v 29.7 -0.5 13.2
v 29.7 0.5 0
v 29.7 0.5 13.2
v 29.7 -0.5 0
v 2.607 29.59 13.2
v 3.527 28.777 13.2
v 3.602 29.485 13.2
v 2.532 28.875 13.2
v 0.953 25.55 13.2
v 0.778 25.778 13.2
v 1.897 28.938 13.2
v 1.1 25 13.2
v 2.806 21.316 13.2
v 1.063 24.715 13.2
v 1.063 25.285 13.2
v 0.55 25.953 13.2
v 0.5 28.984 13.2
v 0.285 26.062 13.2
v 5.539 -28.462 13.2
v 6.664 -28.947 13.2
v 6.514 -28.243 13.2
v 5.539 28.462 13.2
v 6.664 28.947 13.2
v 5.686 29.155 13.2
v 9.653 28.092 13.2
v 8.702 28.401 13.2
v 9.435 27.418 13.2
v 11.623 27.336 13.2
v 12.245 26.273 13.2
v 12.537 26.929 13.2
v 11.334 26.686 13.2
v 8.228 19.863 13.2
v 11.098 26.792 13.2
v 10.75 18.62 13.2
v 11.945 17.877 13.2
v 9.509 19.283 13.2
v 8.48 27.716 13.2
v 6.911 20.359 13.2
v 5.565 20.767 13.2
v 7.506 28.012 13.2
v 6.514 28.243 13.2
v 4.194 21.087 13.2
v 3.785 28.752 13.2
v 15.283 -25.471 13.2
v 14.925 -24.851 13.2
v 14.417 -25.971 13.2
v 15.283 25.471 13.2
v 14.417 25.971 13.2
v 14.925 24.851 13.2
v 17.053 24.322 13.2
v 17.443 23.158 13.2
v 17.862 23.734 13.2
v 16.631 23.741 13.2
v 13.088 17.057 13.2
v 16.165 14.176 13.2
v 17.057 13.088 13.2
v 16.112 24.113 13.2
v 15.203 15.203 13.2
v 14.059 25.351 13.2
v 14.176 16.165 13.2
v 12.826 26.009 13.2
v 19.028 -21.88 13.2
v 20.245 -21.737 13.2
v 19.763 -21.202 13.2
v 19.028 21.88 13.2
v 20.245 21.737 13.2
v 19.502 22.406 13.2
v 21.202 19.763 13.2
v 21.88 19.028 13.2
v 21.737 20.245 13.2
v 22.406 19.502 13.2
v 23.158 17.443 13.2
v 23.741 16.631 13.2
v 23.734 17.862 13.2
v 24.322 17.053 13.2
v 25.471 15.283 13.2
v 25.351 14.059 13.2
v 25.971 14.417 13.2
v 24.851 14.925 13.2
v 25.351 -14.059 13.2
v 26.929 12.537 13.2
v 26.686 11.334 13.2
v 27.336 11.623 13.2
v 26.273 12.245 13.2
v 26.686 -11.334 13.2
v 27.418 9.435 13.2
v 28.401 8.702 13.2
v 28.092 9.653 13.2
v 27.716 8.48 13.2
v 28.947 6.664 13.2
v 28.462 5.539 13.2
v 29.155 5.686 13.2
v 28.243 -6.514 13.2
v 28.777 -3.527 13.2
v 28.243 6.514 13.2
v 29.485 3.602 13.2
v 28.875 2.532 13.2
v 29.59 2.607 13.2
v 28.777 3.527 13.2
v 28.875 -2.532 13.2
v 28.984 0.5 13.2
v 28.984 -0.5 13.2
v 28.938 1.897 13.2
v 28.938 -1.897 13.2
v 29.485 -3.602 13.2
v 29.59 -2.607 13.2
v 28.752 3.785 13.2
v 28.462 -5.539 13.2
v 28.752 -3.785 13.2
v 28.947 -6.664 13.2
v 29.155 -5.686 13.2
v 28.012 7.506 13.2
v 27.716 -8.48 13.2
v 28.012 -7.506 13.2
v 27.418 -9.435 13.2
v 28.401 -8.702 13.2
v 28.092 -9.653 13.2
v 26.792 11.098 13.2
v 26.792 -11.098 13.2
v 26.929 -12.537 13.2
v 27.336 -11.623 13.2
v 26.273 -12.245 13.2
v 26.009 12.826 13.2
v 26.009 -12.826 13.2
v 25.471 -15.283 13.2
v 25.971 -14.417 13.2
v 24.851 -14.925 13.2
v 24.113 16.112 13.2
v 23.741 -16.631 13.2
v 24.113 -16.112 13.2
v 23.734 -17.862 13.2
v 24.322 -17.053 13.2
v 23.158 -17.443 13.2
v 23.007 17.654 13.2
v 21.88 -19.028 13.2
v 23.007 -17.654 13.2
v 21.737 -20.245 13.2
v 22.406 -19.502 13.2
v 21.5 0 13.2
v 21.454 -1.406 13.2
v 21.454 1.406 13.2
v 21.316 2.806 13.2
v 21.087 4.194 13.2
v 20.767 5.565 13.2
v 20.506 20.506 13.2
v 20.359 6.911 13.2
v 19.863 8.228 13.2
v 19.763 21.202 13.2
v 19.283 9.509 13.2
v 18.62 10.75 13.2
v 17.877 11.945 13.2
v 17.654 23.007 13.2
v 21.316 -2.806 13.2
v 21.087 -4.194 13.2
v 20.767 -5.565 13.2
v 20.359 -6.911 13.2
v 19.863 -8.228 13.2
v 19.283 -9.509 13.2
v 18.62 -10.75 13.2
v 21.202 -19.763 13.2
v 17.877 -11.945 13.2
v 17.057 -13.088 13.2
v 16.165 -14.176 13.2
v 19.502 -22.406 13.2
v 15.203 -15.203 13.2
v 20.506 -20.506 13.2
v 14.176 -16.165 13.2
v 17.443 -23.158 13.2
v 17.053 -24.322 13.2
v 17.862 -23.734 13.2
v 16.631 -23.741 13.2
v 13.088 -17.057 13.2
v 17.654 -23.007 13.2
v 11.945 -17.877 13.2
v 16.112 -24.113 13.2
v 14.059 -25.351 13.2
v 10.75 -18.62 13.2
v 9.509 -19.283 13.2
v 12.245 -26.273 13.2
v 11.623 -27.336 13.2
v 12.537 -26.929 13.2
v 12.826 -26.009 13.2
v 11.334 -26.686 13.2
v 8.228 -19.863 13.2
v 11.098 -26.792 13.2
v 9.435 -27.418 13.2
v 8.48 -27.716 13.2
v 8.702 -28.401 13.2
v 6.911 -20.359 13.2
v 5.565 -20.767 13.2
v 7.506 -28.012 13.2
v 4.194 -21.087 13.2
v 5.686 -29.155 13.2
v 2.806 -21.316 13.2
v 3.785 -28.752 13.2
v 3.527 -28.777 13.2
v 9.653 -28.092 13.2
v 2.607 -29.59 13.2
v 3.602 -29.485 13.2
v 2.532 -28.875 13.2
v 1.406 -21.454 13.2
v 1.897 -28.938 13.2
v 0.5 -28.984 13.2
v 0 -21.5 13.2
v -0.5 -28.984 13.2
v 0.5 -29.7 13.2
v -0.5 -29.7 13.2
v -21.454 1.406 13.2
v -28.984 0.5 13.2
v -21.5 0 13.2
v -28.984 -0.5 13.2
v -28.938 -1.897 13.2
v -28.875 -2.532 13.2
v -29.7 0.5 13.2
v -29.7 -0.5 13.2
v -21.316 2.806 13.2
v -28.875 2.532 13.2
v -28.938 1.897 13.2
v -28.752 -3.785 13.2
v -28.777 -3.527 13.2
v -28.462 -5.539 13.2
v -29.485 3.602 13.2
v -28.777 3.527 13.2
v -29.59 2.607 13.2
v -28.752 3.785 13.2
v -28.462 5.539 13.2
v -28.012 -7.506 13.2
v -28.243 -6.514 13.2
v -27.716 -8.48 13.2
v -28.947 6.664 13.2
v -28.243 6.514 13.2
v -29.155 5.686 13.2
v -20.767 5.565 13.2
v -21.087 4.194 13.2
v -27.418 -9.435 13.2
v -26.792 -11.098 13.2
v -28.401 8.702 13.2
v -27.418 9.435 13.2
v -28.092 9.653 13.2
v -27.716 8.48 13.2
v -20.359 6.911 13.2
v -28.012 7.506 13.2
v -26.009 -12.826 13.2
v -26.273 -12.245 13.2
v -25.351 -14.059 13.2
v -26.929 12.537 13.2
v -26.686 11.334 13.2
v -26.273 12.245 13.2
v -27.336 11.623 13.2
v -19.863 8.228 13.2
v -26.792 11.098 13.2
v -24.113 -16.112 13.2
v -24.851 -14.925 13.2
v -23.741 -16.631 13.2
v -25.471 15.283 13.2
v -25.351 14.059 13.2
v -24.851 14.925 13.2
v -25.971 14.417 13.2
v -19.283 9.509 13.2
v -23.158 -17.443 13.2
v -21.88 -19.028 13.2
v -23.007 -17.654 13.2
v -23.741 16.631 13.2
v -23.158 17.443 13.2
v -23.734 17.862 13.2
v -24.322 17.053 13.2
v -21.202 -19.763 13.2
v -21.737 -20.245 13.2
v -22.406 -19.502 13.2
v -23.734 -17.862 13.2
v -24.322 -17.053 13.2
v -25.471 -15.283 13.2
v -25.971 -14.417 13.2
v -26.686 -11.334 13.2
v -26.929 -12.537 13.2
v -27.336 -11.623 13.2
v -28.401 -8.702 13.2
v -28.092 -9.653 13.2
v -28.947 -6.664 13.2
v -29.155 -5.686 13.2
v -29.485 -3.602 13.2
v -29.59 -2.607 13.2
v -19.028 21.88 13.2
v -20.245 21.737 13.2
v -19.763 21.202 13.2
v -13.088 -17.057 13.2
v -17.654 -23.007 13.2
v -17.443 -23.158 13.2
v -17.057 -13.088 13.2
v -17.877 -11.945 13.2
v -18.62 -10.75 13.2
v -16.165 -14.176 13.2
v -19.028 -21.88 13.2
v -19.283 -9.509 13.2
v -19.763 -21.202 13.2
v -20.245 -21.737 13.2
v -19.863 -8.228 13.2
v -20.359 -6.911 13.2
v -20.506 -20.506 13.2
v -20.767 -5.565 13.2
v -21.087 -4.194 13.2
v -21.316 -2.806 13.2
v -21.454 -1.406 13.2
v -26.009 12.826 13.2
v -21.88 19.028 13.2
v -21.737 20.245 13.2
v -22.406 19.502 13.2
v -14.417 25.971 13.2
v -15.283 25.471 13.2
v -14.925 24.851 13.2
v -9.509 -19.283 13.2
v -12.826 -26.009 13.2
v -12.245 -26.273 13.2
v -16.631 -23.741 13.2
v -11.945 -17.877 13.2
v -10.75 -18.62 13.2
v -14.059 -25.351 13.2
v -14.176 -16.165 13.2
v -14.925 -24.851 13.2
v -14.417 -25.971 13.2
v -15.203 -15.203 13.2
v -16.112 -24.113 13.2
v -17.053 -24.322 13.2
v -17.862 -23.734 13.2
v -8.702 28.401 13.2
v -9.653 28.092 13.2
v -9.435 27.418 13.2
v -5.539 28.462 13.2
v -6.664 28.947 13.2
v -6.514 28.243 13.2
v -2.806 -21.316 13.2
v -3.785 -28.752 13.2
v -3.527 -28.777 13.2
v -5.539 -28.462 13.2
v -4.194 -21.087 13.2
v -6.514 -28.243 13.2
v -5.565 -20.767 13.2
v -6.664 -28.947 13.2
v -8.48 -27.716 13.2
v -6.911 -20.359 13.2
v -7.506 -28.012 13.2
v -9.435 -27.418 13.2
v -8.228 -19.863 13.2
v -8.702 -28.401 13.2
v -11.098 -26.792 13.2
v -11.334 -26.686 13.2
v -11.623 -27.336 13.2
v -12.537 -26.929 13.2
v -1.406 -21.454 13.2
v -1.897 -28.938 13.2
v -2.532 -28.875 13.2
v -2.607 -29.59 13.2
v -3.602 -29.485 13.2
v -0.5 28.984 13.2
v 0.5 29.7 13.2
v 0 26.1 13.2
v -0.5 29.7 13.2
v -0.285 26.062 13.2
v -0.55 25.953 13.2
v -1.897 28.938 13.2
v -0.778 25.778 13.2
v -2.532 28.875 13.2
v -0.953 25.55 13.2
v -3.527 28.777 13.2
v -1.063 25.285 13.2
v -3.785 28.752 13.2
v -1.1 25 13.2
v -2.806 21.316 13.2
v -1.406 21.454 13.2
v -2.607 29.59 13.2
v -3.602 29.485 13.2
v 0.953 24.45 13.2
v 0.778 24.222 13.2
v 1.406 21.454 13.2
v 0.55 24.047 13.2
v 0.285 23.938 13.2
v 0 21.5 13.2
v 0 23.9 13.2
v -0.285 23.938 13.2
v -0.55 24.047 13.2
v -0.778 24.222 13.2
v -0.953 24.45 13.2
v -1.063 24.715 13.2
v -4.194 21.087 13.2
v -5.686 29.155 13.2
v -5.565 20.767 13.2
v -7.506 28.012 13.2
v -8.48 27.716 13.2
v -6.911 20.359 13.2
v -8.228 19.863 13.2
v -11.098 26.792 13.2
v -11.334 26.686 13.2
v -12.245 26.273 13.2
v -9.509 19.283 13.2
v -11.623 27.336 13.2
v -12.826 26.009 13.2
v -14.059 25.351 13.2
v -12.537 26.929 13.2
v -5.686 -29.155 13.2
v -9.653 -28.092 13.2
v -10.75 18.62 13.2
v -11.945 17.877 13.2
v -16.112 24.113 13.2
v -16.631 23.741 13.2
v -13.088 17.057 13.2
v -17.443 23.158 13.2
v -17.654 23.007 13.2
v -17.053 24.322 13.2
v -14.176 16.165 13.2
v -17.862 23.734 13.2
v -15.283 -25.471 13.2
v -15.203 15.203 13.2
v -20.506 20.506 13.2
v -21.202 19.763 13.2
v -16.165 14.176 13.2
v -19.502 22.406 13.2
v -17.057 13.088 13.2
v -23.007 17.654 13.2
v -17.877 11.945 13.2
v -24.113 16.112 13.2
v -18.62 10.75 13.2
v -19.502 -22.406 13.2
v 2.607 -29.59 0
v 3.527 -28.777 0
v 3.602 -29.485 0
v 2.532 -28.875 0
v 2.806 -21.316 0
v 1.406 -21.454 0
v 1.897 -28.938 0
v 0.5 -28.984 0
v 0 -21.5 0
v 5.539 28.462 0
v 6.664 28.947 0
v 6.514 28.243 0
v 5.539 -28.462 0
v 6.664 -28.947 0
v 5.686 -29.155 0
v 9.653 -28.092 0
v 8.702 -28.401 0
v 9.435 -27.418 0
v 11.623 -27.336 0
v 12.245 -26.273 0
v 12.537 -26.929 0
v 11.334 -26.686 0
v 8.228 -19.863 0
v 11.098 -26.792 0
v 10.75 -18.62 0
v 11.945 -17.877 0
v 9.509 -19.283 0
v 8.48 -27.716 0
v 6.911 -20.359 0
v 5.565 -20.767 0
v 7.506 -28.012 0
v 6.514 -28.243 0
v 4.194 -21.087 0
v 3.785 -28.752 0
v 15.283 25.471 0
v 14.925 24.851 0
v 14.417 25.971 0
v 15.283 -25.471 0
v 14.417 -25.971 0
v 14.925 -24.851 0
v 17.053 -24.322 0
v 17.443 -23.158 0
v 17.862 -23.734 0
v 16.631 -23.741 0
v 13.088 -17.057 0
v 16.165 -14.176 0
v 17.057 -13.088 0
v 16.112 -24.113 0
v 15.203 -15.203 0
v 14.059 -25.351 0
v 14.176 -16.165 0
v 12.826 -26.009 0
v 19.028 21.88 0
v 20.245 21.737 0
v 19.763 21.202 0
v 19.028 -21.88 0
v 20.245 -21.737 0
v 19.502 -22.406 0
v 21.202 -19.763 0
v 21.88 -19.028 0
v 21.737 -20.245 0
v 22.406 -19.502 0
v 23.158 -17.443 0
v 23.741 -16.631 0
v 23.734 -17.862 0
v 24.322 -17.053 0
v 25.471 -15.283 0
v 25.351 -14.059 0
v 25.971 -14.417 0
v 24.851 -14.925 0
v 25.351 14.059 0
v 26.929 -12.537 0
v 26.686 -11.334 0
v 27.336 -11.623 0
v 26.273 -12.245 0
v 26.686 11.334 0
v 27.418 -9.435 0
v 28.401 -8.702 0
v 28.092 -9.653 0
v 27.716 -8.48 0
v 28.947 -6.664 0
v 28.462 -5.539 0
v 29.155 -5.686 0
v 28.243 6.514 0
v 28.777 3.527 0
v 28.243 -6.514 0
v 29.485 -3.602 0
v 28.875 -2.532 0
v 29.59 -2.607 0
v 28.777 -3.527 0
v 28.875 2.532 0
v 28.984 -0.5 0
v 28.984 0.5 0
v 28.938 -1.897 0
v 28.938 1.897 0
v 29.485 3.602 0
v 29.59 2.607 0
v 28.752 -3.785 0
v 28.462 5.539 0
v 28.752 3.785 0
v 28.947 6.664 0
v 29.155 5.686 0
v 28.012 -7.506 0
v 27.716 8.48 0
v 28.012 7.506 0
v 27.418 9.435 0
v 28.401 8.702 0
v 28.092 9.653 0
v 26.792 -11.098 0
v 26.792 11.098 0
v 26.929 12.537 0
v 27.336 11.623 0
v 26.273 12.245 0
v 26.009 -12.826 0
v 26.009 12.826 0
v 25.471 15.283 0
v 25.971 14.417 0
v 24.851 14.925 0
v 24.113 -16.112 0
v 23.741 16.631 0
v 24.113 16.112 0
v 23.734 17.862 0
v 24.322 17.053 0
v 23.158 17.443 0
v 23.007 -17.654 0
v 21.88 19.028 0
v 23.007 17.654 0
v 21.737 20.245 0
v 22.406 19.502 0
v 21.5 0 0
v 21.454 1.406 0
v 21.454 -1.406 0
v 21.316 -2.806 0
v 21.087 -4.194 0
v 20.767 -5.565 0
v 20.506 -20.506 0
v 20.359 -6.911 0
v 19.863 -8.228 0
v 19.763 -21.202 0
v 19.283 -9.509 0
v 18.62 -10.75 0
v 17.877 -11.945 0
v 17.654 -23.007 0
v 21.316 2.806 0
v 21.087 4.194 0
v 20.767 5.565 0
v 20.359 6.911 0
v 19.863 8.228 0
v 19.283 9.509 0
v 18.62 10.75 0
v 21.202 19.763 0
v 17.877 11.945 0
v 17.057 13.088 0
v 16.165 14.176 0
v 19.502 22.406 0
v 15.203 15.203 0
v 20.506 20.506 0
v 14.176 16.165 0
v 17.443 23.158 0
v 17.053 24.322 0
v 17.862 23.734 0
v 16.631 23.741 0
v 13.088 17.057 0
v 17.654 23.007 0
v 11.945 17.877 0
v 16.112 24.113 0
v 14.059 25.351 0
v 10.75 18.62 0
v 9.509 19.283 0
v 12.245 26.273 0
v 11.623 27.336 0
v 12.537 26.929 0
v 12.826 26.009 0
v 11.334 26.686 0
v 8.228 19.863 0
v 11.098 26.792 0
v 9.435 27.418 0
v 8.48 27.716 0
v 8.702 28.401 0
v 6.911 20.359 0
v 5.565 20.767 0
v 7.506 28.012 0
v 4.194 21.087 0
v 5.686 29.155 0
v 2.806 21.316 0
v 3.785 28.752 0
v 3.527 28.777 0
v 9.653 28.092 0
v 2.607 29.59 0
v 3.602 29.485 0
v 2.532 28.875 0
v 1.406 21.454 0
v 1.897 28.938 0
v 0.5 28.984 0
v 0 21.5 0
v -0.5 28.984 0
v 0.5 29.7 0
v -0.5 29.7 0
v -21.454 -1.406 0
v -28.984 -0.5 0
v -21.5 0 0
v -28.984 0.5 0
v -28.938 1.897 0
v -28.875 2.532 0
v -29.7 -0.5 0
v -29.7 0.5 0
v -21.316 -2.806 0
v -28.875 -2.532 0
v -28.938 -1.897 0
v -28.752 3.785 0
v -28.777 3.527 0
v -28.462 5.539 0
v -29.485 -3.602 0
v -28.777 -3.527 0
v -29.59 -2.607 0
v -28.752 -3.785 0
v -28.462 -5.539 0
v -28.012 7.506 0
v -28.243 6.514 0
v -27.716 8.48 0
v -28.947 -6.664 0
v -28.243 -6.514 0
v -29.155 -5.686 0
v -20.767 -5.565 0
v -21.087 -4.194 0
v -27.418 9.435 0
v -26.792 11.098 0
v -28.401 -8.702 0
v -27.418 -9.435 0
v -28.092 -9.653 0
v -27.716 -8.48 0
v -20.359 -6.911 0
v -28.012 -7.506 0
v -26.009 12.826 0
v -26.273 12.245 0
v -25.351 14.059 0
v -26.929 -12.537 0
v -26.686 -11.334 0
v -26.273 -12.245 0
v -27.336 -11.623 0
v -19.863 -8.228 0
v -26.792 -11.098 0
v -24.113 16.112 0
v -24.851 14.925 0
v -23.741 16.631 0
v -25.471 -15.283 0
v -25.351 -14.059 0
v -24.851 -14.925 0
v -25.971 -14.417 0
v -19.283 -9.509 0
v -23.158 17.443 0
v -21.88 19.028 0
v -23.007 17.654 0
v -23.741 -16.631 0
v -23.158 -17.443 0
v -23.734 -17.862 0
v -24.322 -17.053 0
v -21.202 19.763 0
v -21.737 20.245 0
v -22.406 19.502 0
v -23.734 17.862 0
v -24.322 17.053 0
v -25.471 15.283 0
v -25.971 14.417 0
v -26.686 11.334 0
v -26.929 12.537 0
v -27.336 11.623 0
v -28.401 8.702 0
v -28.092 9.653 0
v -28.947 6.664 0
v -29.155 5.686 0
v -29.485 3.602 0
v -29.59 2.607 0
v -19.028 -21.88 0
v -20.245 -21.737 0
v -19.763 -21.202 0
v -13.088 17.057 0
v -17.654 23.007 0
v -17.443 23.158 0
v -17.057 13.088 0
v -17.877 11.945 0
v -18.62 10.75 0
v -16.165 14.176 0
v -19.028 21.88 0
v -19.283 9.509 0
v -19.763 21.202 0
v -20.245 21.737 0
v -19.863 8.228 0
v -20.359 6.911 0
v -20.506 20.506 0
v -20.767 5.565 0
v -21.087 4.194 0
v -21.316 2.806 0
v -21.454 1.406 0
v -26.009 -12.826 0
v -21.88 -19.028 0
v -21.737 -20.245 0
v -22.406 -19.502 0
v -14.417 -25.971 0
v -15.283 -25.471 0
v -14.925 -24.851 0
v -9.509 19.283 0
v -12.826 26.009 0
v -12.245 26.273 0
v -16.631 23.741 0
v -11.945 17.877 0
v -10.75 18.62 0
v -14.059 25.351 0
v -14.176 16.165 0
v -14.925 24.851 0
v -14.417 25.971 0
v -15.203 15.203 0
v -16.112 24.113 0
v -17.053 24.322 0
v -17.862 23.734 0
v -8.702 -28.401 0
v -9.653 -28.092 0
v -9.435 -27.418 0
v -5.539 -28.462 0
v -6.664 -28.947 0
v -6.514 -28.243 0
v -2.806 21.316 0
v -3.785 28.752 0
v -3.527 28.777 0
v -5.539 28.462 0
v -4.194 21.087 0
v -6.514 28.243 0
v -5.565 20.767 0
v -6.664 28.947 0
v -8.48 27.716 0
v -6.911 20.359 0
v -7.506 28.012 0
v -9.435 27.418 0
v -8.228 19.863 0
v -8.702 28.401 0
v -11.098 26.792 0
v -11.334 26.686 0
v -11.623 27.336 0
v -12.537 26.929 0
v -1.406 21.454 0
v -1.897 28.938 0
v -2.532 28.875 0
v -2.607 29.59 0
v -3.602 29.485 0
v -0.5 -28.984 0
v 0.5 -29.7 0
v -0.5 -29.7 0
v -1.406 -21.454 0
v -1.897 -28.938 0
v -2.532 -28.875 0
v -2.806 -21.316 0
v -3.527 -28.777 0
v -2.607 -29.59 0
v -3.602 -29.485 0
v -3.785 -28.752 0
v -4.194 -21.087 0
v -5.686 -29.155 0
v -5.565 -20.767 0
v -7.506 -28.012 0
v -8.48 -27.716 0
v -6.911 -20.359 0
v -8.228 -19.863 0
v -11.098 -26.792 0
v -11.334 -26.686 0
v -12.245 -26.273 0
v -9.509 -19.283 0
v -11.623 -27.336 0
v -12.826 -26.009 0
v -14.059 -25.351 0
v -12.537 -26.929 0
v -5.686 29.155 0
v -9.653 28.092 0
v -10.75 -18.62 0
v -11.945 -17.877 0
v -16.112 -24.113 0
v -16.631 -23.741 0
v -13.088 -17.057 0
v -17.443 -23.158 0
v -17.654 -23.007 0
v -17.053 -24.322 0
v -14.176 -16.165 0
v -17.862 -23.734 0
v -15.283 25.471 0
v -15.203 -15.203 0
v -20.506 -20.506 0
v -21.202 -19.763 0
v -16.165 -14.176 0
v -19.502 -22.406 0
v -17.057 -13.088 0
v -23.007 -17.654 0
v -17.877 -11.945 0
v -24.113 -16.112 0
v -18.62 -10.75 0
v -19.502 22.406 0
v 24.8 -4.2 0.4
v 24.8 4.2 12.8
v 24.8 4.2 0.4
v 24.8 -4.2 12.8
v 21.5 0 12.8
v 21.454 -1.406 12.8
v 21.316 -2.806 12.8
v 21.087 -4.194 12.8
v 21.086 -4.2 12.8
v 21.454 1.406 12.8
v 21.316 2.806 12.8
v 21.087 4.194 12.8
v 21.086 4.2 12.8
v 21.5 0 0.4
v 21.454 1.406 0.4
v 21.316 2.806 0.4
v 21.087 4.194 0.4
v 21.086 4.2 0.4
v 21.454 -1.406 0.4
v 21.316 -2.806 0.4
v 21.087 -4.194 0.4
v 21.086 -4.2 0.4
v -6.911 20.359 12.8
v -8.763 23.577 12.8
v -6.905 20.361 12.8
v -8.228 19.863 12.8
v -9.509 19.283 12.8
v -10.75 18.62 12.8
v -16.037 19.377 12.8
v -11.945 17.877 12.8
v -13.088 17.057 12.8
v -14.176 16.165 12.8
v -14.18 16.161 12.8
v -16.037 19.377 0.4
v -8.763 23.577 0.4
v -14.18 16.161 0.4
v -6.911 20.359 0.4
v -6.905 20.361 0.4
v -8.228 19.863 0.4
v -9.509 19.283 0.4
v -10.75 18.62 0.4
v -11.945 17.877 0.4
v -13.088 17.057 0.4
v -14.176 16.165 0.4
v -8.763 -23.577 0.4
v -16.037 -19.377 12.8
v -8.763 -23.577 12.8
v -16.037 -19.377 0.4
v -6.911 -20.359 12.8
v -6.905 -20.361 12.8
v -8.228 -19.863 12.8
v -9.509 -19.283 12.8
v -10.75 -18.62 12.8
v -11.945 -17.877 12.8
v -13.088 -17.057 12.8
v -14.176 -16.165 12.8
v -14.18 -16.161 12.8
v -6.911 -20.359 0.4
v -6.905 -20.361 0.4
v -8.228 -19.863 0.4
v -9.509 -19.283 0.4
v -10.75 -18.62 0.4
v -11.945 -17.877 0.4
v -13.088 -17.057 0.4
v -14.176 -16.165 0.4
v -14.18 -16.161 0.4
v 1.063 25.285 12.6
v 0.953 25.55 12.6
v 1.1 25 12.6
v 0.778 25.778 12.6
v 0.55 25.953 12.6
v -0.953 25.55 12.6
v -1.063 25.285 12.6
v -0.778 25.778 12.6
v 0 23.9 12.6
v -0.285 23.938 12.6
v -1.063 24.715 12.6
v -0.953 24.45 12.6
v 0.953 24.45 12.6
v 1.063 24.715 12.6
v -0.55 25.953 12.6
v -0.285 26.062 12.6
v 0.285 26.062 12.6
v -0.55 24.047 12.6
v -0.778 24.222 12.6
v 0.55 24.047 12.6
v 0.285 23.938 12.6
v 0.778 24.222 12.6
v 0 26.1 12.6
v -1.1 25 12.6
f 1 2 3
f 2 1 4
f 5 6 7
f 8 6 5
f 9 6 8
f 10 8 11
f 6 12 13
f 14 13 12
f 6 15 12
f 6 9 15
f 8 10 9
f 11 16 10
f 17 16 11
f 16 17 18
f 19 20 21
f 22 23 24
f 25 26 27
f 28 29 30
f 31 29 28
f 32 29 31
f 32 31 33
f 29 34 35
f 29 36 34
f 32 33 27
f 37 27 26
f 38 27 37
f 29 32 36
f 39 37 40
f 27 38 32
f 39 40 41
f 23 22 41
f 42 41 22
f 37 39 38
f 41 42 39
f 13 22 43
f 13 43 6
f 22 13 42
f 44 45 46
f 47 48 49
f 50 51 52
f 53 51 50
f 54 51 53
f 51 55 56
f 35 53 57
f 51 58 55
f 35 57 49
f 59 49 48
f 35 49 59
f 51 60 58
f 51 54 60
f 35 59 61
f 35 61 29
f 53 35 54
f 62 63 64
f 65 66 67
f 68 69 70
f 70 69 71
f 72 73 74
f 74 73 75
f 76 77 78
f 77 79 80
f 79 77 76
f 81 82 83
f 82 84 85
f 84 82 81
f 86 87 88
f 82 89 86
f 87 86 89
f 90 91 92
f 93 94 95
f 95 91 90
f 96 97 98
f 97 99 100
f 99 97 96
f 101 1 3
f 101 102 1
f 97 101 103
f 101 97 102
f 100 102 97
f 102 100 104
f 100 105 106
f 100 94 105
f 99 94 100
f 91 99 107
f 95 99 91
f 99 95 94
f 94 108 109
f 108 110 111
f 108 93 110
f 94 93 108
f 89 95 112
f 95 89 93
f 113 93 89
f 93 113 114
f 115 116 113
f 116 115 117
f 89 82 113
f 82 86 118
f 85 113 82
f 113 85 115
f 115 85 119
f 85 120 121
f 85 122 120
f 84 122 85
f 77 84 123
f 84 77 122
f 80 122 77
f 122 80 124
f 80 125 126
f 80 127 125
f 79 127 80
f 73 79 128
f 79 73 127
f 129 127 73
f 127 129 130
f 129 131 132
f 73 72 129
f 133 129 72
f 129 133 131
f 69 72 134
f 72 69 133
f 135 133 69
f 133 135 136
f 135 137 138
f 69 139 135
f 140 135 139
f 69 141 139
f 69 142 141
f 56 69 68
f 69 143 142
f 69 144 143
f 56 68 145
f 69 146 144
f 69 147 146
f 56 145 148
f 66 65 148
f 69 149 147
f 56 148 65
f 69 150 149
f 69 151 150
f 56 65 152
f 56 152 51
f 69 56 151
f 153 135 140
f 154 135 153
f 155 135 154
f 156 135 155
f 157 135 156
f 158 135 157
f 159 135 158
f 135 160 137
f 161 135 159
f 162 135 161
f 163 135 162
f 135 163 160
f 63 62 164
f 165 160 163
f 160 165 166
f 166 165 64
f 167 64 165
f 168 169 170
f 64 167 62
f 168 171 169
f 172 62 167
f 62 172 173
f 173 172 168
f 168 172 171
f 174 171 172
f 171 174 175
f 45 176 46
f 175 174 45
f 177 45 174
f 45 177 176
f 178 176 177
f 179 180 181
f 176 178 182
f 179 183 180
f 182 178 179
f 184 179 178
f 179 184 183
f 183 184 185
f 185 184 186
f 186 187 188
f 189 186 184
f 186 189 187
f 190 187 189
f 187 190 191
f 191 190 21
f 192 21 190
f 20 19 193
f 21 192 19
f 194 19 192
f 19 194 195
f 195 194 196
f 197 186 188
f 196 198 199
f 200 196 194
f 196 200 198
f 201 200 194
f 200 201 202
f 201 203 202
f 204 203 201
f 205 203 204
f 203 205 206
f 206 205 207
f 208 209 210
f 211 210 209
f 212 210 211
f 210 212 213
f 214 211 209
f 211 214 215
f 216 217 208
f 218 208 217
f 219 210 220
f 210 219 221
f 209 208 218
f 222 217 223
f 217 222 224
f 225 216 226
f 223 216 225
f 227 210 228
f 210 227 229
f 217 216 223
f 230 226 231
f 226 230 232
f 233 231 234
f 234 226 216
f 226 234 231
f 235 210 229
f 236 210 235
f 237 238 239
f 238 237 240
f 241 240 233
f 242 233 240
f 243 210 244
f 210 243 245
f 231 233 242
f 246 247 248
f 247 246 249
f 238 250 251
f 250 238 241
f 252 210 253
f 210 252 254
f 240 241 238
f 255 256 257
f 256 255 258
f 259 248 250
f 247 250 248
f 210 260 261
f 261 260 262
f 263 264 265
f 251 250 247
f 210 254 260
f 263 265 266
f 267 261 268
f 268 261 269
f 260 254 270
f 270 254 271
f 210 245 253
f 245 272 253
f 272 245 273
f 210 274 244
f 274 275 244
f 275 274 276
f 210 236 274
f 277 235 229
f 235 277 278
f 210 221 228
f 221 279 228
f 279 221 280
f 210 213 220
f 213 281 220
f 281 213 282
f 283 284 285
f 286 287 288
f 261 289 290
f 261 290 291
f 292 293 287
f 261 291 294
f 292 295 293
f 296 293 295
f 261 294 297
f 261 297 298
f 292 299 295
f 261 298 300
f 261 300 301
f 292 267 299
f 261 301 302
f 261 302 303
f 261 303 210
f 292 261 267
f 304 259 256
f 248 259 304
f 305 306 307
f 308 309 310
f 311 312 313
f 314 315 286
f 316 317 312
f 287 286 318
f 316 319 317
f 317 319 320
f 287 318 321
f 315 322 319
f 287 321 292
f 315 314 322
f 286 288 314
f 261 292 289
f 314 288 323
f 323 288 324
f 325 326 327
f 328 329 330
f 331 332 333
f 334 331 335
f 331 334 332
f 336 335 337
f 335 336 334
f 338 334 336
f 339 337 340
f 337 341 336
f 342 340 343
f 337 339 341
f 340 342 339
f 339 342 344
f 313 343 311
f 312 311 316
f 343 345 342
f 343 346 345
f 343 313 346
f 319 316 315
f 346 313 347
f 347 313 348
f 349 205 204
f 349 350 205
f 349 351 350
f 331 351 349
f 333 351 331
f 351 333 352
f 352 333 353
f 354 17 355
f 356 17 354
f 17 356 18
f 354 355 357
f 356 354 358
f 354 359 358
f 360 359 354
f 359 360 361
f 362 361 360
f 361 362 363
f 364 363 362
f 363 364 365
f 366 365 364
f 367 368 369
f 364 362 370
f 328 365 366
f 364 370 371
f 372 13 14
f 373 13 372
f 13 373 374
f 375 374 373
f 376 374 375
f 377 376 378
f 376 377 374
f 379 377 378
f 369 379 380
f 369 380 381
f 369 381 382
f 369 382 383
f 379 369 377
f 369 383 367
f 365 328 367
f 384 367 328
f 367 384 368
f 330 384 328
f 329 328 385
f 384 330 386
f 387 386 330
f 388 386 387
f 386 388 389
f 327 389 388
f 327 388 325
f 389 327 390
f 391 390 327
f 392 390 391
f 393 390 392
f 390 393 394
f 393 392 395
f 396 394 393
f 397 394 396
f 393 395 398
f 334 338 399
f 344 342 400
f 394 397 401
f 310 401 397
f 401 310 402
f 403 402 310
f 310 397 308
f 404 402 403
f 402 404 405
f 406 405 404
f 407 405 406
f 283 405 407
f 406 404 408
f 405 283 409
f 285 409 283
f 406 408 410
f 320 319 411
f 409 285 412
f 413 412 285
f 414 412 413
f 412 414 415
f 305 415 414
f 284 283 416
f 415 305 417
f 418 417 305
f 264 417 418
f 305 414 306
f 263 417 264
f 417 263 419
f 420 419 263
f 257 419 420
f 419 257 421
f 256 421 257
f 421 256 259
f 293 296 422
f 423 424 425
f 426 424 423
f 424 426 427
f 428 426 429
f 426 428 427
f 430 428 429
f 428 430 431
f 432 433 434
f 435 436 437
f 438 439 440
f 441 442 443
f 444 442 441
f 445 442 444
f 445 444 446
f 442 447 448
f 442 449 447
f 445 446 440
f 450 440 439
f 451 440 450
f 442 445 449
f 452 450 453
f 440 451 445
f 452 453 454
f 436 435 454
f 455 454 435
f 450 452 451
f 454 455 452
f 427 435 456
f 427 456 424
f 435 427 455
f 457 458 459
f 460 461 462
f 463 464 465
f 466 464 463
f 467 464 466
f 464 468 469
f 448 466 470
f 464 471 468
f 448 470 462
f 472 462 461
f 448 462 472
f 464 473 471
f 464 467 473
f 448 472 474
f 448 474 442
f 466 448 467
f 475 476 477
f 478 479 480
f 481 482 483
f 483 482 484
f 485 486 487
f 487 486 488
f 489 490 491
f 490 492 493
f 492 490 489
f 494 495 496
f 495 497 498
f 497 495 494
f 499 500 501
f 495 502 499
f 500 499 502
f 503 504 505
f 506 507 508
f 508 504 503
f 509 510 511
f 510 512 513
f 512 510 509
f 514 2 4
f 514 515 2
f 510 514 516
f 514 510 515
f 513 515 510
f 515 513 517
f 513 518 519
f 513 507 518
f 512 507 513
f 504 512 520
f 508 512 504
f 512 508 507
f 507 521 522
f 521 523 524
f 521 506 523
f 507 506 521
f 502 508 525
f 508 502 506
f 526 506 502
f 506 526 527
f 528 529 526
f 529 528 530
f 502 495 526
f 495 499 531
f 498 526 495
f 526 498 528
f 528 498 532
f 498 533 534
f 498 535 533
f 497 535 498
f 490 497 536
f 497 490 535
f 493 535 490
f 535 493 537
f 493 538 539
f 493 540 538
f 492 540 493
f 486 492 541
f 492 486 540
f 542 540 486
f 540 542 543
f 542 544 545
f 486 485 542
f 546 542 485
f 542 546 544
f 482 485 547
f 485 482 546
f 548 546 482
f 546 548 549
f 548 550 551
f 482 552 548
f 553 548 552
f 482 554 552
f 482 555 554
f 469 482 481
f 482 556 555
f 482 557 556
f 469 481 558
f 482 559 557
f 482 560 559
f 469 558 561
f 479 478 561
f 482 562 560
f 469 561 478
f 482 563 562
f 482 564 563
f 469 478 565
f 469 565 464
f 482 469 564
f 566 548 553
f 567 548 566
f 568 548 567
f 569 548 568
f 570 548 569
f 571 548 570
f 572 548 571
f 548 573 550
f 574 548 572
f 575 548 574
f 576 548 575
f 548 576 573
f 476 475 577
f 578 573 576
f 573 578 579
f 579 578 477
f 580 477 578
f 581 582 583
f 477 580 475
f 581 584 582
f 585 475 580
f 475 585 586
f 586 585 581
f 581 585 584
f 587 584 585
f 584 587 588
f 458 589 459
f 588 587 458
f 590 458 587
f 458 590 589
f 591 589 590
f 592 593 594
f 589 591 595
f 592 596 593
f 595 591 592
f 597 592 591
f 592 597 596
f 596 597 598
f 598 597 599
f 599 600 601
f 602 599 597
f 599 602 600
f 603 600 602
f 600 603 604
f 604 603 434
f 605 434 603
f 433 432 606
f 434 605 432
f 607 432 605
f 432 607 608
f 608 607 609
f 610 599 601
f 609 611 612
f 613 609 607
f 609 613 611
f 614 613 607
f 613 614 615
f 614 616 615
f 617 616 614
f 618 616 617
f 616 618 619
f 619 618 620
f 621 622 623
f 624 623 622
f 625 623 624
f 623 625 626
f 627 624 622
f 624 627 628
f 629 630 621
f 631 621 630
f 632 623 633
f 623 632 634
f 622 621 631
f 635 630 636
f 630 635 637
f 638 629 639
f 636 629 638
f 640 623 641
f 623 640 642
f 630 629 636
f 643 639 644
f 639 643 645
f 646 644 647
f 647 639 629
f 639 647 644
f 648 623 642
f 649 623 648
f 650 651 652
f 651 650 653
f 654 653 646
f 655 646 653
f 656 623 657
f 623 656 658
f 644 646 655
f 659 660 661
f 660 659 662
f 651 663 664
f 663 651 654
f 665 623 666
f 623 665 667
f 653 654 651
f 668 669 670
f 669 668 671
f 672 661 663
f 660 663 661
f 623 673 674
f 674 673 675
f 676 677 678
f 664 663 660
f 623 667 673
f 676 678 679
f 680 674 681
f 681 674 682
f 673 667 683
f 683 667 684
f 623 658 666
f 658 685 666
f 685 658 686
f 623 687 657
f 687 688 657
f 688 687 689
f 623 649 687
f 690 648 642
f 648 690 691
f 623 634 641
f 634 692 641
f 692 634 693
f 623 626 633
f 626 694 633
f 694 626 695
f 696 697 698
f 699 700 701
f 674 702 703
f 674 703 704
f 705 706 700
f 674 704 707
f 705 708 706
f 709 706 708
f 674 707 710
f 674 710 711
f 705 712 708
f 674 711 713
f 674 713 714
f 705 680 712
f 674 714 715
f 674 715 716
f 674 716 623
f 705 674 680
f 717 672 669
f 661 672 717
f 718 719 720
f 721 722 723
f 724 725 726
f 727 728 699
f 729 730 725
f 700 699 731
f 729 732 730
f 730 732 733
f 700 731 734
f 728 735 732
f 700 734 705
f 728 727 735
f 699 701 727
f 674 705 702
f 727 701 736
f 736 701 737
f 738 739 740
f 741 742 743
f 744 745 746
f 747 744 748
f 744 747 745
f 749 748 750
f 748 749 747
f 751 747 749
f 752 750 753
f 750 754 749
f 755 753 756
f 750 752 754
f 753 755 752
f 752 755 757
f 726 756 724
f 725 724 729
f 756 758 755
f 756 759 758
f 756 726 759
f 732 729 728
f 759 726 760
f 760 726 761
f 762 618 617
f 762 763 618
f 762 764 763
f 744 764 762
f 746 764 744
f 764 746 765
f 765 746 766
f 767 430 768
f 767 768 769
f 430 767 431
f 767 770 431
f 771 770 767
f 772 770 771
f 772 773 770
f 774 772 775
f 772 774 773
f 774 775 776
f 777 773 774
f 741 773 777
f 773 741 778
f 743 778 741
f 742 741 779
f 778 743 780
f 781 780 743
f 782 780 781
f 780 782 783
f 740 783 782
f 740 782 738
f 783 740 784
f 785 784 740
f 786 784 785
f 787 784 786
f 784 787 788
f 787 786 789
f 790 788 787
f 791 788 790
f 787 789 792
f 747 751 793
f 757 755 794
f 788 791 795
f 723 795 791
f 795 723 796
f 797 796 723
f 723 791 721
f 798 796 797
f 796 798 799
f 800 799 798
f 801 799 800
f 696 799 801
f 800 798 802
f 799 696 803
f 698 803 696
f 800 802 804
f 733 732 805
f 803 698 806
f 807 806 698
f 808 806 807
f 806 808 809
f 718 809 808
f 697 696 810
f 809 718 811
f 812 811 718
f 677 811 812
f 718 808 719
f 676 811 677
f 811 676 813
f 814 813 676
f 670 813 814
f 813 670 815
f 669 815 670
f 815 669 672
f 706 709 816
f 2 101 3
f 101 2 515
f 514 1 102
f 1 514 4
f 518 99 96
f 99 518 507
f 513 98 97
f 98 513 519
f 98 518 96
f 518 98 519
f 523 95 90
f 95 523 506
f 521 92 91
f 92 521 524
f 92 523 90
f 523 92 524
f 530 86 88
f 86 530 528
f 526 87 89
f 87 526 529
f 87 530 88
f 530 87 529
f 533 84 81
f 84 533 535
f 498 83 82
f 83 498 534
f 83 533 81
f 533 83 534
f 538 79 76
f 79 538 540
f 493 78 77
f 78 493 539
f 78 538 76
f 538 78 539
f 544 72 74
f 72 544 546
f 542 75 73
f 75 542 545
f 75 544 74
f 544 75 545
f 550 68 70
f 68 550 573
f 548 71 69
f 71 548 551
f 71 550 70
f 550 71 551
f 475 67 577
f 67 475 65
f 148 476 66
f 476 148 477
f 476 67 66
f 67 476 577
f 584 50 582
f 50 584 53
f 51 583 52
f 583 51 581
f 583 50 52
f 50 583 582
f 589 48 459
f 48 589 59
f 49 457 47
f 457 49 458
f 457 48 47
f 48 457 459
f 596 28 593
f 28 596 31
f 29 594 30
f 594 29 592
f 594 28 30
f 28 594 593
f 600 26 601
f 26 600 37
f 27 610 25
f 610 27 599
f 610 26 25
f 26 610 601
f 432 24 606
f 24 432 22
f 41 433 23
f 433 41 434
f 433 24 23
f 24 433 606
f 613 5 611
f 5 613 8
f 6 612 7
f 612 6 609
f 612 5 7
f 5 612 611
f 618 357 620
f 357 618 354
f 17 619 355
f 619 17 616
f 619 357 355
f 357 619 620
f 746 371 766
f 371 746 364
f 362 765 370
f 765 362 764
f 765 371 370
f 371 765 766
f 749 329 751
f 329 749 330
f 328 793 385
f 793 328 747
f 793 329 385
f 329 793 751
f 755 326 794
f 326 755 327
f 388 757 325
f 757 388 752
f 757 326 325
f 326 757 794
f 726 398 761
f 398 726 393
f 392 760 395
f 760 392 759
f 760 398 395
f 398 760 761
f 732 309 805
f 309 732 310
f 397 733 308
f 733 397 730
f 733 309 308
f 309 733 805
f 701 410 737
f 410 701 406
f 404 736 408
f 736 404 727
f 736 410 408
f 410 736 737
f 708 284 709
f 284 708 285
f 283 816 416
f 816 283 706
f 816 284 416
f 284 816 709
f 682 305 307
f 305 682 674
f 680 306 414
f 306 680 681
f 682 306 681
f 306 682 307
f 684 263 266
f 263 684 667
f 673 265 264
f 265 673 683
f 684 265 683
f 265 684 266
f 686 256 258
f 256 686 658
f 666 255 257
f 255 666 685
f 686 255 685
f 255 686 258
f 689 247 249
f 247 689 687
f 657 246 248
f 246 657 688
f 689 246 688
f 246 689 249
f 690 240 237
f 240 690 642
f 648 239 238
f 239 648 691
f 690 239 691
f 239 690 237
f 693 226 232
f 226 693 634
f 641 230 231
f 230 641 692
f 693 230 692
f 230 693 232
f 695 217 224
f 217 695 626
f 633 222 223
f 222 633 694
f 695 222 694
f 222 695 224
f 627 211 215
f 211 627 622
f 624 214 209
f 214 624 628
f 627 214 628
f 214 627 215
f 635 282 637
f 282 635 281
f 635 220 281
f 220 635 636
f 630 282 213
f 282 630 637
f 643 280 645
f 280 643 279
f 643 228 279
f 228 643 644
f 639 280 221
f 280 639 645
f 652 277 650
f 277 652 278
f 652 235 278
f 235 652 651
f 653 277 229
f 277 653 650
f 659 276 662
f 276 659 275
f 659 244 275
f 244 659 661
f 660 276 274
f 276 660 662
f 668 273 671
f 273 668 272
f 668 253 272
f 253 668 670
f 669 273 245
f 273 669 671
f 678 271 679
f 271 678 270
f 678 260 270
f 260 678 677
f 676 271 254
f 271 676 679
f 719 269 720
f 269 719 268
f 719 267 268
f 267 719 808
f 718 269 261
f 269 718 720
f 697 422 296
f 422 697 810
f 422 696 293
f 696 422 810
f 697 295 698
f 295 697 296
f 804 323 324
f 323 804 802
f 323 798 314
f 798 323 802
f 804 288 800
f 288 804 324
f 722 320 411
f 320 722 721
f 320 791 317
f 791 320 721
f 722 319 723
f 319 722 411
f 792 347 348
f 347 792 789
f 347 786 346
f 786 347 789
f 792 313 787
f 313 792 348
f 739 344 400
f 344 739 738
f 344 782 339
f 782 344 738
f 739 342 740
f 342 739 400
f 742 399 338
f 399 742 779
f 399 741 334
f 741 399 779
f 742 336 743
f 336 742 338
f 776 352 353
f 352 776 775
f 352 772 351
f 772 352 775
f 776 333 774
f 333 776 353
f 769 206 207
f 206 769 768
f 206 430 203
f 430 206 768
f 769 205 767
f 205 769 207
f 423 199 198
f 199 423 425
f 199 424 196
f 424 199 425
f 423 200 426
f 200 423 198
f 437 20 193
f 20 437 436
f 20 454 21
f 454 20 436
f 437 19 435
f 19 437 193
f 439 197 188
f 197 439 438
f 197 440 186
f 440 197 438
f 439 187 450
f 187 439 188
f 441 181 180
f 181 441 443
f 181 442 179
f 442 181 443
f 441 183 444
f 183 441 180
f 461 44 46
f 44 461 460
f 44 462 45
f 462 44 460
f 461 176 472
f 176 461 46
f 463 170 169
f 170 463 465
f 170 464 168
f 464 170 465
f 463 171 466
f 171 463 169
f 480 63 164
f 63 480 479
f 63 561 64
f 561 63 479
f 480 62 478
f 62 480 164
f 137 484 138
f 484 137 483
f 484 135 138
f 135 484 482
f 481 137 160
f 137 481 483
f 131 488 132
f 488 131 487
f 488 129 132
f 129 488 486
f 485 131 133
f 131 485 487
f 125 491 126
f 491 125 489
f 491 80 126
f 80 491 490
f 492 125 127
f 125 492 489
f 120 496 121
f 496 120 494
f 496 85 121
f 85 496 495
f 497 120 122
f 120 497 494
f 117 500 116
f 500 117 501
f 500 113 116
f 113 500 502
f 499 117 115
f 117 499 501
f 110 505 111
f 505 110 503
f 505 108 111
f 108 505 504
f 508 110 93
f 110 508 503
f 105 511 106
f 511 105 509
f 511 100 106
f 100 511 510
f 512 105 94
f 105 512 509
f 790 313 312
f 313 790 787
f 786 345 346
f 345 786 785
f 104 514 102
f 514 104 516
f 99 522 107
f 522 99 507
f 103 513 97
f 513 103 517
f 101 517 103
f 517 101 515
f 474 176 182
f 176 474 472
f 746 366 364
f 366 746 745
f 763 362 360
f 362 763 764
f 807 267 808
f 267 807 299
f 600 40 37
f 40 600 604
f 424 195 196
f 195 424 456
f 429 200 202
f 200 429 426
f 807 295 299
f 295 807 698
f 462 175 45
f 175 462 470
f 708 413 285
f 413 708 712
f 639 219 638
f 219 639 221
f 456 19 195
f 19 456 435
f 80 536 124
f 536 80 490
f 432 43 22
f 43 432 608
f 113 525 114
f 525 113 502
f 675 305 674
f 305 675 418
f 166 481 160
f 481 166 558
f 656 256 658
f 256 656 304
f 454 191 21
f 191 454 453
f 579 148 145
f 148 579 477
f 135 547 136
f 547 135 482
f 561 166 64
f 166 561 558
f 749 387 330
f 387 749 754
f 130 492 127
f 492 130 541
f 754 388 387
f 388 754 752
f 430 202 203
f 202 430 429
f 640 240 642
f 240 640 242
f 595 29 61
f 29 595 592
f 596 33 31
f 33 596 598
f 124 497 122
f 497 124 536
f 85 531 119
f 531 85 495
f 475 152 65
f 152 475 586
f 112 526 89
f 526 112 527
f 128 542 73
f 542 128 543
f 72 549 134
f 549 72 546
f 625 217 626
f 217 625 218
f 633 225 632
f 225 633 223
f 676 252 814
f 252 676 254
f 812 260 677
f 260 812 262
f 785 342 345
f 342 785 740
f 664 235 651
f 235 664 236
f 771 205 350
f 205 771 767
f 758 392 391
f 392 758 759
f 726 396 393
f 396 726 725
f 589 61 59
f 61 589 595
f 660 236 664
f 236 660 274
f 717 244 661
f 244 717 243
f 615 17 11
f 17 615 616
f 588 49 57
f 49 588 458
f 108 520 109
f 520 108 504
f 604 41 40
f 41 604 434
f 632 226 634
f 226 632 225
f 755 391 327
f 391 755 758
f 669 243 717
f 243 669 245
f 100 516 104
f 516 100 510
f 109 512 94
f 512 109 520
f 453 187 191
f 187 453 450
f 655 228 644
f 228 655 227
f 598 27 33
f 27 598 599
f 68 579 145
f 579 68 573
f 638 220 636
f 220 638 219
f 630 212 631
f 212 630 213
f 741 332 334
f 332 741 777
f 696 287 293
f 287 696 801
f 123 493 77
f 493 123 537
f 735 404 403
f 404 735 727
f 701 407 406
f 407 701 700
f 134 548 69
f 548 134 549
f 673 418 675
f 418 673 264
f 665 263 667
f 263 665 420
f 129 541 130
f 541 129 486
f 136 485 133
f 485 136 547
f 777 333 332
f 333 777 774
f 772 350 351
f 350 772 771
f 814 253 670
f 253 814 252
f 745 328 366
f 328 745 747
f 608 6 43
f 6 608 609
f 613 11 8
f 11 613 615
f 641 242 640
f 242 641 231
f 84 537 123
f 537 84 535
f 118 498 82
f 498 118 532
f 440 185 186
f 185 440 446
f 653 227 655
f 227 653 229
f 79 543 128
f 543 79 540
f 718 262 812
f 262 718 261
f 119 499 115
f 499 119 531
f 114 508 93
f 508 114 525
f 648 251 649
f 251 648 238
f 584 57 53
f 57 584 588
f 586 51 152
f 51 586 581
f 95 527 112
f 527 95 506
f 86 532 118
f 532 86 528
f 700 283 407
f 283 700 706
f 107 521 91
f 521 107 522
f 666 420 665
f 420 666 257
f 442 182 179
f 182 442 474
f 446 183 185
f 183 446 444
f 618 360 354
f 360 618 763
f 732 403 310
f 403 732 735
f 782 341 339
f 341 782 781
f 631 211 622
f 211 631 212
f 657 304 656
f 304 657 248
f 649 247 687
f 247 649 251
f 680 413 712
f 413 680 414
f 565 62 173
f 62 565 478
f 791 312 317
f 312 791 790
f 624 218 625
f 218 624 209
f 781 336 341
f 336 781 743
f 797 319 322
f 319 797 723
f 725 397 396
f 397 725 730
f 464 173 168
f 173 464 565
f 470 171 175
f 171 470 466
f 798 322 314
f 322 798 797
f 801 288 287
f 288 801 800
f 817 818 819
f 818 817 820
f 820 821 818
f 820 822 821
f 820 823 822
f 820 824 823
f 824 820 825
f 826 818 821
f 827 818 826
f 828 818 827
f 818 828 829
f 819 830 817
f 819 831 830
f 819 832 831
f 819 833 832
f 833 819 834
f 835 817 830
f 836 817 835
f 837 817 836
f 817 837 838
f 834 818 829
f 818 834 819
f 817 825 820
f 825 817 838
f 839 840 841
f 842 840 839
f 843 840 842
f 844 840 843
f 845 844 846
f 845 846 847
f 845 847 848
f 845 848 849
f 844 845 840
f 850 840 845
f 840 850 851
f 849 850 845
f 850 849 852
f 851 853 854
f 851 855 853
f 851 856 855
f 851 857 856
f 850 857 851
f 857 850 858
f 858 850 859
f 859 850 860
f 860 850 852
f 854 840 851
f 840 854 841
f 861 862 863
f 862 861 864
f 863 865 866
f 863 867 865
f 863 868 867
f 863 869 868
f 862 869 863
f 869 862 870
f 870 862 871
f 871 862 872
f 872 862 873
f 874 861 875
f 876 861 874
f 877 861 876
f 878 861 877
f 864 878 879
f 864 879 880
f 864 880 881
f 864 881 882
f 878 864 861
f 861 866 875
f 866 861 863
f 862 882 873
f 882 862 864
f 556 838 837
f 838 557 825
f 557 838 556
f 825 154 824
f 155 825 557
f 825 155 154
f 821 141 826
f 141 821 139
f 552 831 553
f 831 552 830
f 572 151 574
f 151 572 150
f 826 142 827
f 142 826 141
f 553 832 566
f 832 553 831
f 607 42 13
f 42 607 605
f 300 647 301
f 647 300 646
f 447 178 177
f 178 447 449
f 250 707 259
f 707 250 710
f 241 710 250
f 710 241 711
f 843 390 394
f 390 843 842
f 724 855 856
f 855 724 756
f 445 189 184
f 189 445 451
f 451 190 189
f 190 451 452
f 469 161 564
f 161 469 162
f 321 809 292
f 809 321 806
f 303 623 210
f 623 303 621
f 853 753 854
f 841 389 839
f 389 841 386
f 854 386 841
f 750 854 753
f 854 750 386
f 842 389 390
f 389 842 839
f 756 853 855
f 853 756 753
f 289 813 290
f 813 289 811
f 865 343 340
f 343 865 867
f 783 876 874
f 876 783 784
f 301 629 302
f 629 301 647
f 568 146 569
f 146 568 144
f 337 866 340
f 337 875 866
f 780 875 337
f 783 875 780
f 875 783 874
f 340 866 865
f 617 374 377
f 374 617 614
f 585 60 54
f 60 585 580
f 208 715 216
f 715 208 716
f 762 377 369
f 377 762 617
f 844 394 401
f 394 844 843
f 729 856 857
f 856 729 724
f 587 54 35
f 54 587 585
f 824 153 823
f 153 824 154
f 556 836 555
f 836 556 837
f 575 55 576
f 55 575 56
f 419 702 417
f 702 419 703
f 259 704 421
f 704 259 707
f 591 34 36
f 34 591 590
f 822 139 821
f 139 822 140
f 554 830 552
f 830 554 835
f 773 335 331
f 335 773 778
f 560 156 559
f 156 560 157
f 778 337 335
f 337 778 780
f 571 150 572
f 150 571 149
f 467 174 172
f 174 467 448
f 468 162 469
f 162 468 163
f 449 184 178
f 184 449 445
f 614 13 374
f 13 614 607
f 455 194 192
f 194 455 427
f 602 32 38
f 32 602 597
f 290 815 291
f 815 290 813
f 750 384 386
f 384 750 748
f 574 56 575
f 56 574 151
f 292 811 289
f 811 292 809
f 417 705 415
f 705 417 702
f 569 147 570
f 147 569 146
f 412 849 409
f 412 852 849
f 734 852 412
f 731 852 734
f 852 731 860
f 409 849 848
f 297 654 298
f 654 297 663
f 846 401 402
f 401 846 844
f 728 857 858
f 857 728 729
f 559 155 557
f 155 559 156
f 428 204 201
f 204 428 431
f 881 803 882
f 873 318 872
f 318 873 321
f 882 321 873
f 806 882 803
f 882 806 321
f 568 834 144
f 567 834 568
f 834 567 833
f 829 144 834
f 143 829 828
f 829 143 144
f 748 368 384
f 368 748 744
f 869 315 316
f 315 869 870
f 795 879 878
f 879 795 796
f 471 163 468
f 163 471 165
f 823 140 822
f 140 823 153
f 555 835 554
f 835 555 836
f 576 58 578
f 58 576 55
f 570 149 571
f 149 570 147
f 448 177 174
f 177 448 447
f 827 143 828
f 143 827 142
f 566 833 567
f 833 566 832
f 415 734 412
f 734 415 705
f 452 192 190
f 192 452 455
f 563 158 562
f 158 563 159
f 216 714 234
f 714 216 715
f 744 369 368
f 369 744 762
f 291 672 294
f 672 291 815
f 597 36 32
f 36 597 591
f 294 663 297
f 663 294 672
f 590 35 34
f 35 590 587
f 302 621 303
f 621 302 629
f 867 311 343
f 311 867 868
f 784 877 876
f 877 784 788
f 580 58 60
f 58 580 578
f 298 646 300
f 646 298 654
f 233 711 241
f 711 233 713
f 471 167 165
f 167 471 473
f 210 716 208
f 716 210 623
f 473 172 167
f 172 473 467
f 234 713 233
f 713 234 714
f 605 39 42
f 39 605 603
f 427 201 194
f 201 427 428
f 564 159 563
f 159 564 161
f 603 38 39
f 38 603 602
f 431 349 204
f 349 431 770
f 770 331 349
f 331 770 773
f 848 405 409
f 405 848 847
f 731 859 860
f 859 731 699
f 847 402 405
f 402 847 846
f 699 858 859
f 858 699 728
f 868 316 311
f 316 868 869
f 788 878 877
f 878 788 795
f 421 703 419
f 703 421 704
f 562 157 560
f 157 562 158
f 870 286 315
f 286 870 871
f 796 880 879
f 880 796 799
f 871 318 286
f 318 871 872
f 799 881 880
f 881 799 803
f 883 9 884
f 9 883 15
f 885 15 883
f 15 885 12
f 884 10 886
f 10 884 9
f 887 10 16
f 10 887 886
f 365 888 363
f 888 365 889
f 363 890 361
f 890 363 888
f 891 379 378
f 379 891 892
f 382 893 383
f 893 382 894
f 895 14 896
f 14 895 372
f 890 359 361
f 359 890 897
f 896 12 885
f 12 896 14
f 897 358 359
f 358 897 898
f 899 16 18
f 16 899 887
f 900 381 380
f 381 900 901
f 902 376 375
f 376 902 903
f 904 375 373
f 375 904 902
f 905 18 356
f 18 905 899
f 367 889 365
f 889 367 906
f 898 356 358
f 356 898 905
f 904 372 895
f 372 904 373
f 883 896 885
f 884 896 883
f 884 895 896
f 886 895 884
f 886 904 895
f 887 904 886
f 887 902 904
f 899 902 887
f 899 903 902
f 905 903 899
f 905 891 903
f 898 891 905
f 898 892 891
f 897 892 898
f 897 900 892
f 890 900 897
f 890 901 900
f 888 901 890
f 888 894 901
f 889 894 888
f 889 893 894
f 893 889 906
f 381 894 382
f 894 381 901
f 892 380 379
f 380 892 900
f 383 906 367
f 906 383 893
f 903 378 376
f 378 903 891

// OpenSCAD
// file: params.scad
// Shared parameters for the DMX truss controller housing.
// All sizes in mm. "VERIFIED" = read from a datasheet/drawing, "PROPOSAL" = my design choice.
// Coordinates: z is the axis through the middle of the ring, +z towards the viewer.
// z = 0 is the wall side (back of the base).

$fn = 96;

// ---------- base (octagon) ----------
base_flat      = 90;     // across flats                                   PROPOSAL
base_depth     = 22;     // z height of the base for the FIRST TEST         PROPOSAL
base_wall      = 2.5;    // wall thickness                                 PROPOSAL
back_plate     = 2.5;    // back plate thickness                           PROPOSAL
base_r_corner  = base_flat / 2 / cos(22.5);   // circumradius of the octagon

// ---------- pedestal and ring ----------
pedestal_od    = 58;     // PROPOSAL
pedestal_h     = 18;     // PROPOSAL
ring_od        = 58;     // PROPOSAL
ring_id        = 43.0;   // PROPOSAL: carrier radius 20.65 + 0.85 mm running gap (was 41.6 = only 0.15 mm)
ring_h         = 13.2;   // PROPOSAL
ring_gap       = 0.8;    // gap between pedestal top and ring                 PROPOSAL

// ---------- motor: SparkFun ROB-20441 = OT-EM3215D2450Y1R-BEZE (datasheet p8) ----------
// Sizes below are read from the drawing. UNVERIFIED (not stated on the drawing): which face is the stator
// mounting face, which part turns (rotor cup vs hollow shaft), and the gap between rotor and stator base.
// The drawing also shows 2 x dia 2.0 holes on a dia 21.0 circle (not used here). Check on the real motor first.
motor_od       = 32.0;   // VERIFIED rotor/body diameter (32.0 +0.025)
motor_h        = 15.0;   // VERIFIED overall height (15.0 +-0.2)
motor_body_h   = 12.8;   // VERIFIED height of the rotor body without the boss
motor_boss_d   = 11.5;   // VERIFIED raised boss on top of the rotor (11.5 +-0.1)
motor_boss_h   = 2.2;    // VERIFIED (15.0 - 12.8)
motor_bore     = 5.9;    // VERIFIED hollow shaft (5.9 +0.1)
motor_hole_n   = 3;      // read from drawing: three M1.6 holes (face unverified)
motor_hole_pcd = 20.5;   // VERIFIED pitch circle (20.5 +0.1)
motor_hole_thr = 1.6;    // VERIFIED thread M1.6 x 0.35, depth 6.0
motor_poles    = 8;      // VERIFIED datasheet: 8 magnetic poles (SmartKnob firmware assumed 14)

// ---------- display: Waveshare 1.28in Touch LCD ----------
disp_od        = 38.5;   // VERIFIED (Waveshare), round PCB diameter
disp_glass     = 32.4;   // VERIFIED
disp_len       = 39.89;  // VERIFIED, module length including the connector tab

// ---------- Arduino Nano ESP32 ----------
nano_l         = 43.18;  // VERIFIED (Arduino datasheet, mechanical page)
nano_w         = 17.78;  // VERIFIED
nano_hole_dx   = 40.64;  // VERIFIED
nano_hole_dy   = 15.24;  // VERIFIED
nano_hole_d    = 1.66;   // VERIFIED (take M1.6 screws)

// ---------- perfboard ----------
board_x        = 70;     // user owns a 5 x 7 cm perfboard
board_y        = 50;
board_corner   = 4;      // corner cut so it fits the octagon                PROPOSAL

// ---------- USB-C plug (first test: supply plugs straight into the Nano) ----------
usbc_slot_w    = 16;     // PROPOSAL: spec max overmold 12.35 x 6.5, real cables up to 13.0 x 7.4
usbc_slot_h    = 10;     // PROPOSAL

// ---------- Neutrik D-size panel cut-out (XLR NC3FD-LX and USB-C NAUSBC-5G-FL alike) ----------
d_hole         = 24;     // VERIFIED (Neutrik drawing)
d_screw_dx     = 19;     // VERIFIED
d_screw_dy     = 24;     // VERIFIED
d_screw_d      = 3.2;    // VERIFIED
d_flange_w     = 26;     // VERIFIED
d_flange_h     = 31;     // VERIFIED

// ---------- wall mount ----------
key_dx         = 70;     // distance between the two keyholes                PROPOSAL
key_head       = 7;      // head hole diameter                               PROPOSAL
key_slot       = 3.5;    // slot width                                       PROPOSAL
key_slot_len   = 7;      // PROPOSAL

// ---------- fits ----------
fit            = 0.2;    // printer clearance for sliding/clamped fits (PETG, 0.4 mm nozzle)

echo(str("octagon circumradius = ", base_r_corner));

// ---------- z stack of the turning side, derived once and used by every part ----------
// z = 0 is the back of the base. Base is base_depth tall; the front plate closes it at the top.
plate_t        = 2.5;                              // front plate thickness
z_plate_top    = base_depth;                       // 22
z_motor_bot    = z_plate_top;                      // the stator sits ON the plate
z_rotor_top    = z_motor_bot + motor_body_h;       // 34.8
z_boss_top     = z_motor_bot + motor_h;            // 37.0
z_ped_bot      = z_plate_top;
z_ped_top      = z_ped_bot + pedestal_h;           // 40
z_ring_bot     = z_ped_top + ring_gap;             // 40.8
z_ring_top     = z_ring_bot + ring_h;              // 54.0
// display: glass about 1.5 mm below the ring top
glass_recess   = 1.5;                              // PROPOSAL
module_t       = 3.4;                              // pcb + lcd stack. ESTIMATE, not measured on the real module
z_module_top   = z_ring_top - glass_recess;
z_module_bot   = z_module_top - module_t;
carrier_t      = 4;                                // carrier plate thickness
pocket_h       = 2.2;                              // pocket depth for the module pcb
z_carrier_bot  = z_module_bot + pocket_h - carrier_t;   // carrier underside
z_hub_bot      = z_boss_top - motor_boss_h;        // hub rests on the rotor top face (34.8)
hub_t          = 2.4;
z_hub_top      = z_hub_bot + hub_t;
// the column must reach from its foot to the carrier underside
col_foot_z     = z_plate_top - plate_t - 3;        // foot sits under the front plate, 3 mm foot
col_top_z      = z_carrier_bot + (carrier_t - pocket_h) - 0.2;   // 0.2 mm below the pocket floor
// main file
// Ring: the part you hold and turn. 58 mm outside, 41.6 mm inside, with fine knurl ribs.
// It is glued/screwed to the three walls of the rotor hub (rotor_hub.scad).
include <params.scad>

rib_n     = 60;
rib_w     = 1.0;
rib_d     = 0.7;     // rib depth, PROPOSAL
mark_d    = 2.2;     // position marker dot

module ring() {
    difference() {
        union() {
            cylinder(d = ring_od, h = ring_h);
            // knurl: small vertical ribs around the outside
            for (i = [0 : rib_n - 1])
                rotate([0, 0, i * 360 / rib_n]) translate([ring_od / 2 - 0.2, -rib_w / 2, 0]) cube([rib_d + 0.2, rib_w, ring_h]);
        }
        translate([0, 0, -1]) cylinder(d = ring_id, h = ring_h + 2);
        // position marker: a small round recess in the top face at 12 o'clock
        translate([0, ring_od / 2 - 4, ring_h - 0.6]) cylinder(d = mark_d, h = 1, $fn = 24);
        // three pockets on the inside for the hub walls (3 x 8 wide, 3 deep), 120 degrees apart
        for (a = [0, 120, 240])
            rotate([0, 0, a]) translate([ring_id / 2 - 0.5, -4.2, 0.4]) cube([3.8, 8.4, ring_h - 0.8]);
    }
}

ring();
